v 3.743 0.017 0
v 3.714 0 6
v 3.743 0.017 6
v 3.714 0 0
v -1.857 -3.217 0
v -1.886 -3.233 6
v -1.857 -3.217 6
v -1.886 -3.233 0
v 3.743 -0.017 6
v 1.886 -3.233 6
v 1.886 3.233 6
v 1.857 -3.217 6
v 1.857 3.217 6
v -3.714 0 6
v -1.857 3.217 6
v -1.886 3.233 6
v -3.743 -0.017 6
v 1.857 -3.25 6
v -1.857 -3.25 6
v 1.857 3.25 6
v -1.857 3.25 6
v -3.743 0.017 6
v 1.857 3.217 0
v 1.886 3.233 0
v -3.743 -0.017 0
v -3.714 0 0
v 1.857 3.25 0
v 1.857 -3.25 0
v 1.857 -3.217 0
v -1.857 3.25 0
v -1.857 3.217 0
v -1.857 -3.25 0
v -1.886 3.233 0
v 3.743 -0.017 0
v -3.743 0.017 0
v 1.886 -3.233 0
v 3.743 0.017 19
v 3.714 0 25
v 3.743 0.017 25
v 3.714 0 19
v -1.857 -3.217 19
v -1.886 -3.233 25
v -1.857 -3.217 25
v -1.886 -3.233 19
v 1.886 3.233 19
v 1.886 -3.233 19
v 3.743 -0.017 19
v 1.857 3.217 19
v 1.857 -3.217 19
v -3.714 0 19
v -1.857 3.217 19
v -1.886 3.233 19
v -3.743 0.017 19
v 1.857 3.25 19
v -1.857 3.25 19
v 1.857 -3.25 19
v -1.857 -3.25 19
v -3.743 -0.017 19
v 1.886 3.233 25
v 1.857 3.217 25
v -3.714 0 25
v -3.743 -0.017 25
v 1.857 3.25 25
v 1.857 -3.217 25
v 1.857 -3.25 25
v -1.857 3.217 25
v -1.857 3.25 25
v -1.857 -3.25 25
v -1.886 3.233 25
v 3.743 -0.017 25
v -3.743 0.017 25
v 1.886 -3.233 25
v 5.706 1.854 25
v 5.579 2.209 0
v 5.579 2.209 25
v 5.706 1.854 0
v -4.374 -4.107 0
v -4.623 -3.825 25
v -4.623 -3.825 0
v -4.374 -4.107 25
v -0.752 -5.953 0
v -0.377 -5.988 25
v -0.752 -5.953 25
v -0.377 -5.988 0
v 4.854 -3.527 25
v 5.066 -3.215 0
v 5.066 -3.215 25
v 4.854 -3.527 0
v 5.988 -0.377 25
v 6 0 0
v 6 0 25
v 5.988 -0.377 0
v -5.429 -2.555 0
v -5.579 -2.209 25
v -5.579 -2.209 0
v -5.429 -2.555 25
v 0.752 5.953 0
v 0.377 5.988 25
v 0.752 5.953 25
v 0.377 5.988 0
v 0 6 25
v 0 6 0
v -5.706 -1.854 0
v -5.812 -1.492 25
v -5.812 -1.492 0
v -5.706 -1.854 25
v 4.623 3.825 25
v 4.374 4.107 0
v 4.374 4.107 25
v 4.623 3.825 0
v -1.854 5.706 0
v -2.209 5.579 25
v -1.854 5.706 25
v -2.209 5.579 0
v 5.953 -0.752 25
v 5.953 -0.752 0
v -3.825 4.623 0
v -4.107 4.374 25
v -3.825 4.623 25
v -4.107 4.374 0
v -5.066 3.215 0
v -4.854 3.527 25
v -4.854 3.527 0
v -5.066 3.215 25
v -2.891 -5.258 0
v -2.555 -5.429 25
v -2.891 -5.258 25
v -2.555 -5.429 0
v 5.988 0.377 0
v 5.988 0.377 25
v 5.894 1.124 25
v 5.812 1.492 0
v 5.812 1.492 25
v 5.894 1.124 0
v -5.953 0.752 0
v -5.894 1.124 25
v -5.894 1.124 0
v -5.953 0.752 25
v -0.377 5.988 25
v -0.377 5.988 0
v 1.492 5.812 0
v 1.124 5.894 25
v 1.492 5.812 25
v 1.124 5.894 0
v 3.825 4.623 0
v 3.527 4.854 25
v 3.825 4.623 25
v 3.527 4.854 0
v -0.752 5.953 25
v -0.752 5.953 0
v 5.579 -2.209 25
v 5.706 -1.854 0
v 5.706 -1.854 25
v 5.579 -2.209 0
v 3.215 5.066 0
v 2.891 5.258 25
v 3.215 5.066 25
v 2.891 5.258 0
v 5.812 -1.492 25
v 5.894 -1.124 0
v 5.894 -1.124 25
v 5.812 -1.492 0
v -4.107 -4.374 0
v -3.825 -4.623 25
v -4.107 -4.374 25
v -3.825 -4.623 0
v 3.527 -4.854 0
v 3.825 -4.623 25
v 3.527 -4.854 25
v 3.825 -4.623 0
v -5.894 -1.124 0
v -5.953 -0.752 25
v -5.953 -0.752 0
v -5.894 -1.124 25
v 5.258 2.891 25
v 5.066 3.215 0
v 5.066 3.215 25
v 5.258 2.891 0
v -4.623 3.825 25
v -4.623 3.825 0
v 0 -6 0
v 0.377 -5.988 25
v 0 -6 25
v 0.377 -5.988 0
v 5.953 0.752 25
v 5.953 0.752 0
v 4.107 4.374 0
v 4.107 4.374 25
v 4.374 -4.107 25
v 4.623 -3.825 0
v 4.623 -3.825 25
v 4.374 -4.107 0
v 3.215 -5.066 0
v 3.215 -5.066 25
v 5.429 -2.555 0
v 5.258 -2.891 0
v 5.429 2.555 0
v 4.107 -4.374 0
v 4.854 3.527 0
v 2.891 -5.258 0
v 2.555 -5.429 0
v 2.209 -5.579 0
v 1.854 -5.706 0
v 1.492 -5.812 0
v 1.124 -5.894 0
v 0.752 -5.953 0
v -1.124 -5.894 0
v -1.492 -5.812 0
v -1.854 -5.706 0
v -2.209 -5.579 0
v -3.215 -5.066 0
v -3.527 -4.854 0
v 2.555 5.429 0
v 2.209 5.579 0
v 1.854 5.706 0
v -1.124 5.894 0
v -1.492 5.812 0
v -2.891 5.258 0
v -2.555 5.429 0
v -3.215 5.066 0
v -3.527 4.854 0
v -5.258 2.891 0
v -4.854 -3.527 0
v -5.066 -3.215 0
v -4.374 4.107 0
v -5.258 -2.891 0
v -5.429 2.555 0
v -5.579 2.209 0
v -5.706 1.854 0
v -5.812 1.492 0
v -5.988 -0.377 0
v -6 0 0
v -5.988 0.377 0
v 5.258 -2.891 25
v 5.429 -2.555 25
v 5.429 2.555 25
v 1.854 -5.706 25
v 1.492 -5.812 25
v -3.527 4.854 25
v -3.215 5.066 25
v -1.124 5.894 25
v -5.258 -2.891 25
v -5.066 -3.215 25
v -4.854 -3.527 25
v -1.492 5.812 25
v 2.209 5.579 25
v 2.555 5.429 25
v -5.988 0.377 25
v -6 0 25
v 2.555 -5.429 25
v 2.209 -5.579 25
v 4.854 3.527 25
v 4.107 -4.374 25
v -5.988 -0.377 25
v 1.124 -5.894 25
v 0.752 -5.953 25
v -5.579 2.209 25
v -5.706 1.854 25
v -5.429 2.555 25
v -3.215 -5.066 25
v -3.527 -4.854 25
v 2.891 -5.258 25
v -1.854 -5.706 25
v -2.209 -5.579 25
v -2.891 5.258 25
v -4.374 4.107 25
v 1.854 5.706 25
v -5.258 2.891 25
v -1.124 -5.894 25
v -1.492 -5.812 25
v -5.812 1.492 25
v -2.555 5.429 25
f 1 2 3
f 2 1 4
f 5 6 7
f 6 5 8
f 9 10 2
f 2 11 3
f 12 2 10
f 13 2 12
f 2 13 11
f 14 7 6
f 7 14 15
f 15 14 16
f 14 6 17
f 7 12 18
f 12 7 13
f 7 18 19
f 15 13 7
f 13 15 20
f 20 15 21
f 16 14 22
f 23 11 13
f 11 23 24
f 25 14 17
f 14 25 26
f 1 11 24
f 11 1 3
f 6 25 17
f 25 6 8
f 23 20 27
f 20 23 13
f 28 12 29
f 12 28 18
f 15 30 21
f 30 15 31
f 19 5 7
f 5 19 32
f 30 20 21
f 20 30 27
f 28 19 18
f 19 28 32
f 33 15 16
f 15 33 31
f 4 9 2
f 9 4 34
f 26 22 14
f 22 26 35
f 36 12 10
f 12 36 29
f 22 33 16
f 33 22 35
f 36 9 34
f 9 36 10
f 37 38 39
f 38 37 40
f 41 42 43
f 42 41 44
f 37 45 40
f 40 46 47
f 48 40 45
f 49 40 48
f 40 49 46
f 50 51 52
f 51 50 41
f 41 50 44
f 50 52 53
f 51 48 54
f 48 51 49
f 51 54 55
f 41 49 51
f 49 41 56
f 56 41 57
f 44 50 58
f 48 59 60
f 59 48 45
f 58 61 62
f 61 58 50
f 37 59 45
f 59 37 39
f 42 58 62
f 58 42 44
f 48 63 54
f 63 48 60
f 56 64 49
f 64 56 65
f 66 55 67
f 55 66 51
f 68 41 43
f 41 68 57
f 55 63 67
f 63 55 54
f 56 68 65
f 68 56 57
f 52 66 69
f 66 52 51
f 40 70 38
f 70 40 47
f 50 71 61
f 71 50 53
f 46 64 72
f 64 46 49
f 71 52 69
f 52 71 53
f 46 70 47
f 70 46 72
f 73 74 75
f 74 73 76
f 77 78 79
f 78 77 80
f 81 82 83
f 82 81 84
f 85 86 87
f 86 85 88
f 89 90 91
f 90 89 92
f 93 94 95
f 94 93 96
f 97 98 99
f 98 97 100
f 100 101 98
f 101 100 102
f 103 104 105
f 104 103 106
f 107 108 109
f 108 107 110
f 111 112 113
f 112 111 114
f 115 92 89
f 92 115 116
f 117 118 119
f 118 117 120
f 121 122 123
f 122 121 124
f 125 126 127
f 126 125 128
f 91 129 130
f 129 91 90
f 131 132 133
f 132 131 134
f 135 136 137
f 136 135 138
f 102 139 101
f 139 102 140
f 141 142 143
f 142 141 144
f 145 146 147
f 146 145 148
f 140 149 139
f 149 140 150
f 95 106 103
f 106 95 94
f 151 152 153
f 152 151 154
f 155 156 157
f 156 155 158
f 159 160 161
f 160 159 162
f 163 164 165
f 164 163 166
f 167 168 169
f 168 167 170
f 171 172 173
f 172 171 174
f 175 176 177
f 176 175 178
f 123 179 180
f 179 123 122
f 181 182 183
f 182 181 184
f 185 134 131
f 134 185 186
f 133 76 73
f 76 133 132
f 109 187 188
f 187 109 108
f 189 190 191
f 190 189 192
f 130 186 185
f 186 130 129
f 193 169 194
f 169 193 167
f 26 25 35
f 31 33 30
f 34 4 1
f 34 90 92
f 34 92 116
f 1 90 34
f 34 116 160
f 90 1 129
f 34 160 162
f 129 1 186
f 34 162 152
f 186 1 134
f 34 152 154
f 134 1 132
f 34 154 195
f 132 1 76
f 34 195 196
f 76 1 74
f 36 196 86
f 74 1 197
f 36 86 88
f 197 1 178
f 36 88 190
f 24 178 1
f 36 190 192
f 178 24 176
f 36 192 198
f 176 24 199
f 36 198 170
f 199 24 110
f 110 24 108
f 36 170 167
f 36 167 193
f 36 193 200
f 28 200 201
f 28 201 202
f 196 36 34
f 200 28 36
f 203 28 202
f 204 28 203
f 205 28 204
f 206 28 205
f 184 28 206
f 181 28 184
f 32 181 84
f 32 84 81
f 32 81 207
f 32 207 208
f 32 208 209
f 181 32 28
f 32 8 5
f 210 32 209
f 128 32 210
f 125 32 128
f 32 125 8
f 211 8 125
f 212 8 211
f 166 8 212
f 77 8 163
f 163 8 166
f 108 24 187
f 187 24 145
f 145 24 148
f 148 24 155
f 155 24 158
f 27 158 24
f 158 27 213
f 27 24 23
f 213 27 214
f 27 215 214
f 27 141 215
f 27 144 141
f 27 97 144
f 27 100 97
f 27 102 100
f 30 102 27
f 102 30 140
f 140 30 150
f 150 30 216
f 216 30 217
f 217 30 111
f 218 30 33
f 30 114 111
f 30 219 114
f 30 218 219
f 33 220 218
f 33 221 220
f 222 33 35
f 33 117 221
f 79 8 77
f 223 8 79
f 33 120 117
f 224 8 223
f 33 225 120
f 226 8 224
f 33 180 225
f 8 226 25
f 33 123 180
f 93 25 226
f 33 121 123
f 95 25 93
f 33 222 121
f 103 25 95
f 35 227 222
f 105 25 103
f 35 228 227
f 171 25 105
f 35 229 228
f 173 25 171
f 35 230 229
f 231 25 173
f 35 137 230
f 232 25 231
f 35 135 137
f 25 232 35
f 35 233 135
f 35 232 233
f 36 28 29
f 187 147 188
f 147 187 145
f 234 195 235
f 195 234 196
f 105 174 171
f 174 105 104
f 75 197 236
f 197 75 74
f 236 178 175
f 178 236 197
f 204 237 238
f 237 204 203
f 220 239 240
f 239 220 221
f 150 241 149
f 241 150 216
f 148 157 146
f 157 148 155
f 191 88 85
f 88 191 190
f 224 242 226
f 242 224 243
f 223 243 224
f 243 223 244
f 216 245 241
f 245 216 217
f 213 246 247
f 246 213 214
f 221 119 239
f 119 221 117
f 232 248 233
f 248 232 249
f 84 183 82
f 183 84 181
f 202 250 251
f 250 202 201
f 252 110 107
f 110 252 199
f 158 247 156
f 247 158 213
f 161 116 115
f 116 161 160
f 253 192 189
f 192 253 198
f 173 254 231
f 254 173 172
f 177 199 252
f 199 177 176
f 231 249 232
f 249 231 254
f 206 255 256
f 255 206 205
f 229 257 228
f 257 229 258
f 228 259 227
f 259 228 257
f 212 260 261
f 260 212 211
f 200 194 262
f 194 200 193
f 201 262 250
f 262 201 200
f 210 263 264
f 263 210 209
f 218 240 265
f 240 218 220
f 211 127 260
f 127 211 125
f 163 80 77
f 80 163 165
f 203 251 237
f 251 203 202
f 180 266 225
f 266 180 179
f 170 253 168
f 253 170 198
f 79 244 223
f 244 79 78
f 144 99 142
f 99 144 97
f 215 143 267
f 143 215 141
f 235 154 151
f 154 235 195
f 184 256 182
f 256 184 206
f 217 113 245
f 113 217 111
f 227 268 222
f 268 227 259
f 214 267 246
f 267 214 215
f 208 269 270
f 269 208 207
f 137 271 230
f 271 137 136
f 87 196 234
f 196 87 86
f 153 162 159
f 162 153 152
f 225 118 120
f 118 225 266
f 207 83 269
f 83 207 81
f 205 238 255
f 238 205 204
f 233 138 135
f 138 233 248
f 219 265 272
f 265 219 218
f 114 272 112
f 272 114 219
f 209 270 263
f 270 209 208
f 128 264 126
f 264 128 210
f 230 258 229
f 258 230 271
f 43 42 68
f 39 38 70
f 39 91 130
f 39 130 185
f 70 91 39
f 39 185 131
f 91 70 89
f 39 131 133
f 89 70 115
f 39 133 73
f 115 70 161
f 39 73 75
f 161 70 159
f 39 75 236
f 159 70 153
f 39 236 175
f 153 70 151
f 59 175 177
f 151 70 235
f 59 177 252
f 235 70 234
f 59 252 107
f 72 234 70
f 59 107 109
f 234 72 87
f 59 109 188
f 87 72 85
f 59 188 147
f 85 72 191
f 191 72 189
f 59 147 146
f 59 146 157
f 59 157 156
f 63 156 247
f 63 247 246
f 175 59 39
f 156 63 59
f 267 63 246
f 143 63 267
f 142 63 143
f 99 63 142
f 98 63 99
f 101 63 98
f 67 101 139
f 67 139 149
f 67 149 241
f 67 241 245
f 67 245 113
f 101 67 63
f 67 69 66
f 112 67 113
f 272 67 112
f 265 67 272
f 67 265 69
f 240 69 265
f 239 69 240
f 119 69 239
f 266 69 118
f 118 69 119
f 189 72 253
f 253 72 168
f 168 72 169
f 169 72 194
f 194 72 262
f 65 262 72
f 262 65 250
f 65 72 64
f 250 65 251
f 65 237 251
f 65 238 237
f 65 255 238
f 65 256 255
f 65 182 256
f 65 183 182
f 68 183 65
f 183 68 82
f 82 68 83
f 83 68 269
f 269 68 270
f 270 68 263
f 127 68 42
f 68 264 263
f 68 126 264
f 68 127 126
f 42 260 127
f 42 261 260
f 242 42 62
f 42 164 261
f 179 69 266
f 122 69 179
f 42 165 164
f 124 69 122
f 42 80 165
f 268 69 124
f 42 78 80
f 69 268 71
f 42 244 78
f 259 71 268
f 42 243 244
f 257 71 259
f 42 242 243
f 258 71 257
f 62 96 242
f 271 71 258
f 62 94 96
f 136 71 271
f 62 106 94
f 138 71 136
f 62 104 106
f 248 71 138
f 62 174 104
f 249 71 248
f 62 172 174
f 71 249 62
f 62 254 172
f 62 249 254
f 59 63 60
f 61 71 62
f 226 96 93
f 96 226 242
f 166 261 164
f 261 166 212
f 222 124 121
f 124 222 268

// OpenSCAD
module hexagon(size, height) {
  boxWidth = size/1.75;
  for (r = [-60, 0, 60])
    rotate([0,0,r])
      cube([boxWidth, size, height], true);
}
 

 
 difference() {
      cylinder(25,6,6, $fn=100);
      hexagon(6.5,12);
      translate ([0,0,25]) 
        hexagon(6.5,12);

     } 
